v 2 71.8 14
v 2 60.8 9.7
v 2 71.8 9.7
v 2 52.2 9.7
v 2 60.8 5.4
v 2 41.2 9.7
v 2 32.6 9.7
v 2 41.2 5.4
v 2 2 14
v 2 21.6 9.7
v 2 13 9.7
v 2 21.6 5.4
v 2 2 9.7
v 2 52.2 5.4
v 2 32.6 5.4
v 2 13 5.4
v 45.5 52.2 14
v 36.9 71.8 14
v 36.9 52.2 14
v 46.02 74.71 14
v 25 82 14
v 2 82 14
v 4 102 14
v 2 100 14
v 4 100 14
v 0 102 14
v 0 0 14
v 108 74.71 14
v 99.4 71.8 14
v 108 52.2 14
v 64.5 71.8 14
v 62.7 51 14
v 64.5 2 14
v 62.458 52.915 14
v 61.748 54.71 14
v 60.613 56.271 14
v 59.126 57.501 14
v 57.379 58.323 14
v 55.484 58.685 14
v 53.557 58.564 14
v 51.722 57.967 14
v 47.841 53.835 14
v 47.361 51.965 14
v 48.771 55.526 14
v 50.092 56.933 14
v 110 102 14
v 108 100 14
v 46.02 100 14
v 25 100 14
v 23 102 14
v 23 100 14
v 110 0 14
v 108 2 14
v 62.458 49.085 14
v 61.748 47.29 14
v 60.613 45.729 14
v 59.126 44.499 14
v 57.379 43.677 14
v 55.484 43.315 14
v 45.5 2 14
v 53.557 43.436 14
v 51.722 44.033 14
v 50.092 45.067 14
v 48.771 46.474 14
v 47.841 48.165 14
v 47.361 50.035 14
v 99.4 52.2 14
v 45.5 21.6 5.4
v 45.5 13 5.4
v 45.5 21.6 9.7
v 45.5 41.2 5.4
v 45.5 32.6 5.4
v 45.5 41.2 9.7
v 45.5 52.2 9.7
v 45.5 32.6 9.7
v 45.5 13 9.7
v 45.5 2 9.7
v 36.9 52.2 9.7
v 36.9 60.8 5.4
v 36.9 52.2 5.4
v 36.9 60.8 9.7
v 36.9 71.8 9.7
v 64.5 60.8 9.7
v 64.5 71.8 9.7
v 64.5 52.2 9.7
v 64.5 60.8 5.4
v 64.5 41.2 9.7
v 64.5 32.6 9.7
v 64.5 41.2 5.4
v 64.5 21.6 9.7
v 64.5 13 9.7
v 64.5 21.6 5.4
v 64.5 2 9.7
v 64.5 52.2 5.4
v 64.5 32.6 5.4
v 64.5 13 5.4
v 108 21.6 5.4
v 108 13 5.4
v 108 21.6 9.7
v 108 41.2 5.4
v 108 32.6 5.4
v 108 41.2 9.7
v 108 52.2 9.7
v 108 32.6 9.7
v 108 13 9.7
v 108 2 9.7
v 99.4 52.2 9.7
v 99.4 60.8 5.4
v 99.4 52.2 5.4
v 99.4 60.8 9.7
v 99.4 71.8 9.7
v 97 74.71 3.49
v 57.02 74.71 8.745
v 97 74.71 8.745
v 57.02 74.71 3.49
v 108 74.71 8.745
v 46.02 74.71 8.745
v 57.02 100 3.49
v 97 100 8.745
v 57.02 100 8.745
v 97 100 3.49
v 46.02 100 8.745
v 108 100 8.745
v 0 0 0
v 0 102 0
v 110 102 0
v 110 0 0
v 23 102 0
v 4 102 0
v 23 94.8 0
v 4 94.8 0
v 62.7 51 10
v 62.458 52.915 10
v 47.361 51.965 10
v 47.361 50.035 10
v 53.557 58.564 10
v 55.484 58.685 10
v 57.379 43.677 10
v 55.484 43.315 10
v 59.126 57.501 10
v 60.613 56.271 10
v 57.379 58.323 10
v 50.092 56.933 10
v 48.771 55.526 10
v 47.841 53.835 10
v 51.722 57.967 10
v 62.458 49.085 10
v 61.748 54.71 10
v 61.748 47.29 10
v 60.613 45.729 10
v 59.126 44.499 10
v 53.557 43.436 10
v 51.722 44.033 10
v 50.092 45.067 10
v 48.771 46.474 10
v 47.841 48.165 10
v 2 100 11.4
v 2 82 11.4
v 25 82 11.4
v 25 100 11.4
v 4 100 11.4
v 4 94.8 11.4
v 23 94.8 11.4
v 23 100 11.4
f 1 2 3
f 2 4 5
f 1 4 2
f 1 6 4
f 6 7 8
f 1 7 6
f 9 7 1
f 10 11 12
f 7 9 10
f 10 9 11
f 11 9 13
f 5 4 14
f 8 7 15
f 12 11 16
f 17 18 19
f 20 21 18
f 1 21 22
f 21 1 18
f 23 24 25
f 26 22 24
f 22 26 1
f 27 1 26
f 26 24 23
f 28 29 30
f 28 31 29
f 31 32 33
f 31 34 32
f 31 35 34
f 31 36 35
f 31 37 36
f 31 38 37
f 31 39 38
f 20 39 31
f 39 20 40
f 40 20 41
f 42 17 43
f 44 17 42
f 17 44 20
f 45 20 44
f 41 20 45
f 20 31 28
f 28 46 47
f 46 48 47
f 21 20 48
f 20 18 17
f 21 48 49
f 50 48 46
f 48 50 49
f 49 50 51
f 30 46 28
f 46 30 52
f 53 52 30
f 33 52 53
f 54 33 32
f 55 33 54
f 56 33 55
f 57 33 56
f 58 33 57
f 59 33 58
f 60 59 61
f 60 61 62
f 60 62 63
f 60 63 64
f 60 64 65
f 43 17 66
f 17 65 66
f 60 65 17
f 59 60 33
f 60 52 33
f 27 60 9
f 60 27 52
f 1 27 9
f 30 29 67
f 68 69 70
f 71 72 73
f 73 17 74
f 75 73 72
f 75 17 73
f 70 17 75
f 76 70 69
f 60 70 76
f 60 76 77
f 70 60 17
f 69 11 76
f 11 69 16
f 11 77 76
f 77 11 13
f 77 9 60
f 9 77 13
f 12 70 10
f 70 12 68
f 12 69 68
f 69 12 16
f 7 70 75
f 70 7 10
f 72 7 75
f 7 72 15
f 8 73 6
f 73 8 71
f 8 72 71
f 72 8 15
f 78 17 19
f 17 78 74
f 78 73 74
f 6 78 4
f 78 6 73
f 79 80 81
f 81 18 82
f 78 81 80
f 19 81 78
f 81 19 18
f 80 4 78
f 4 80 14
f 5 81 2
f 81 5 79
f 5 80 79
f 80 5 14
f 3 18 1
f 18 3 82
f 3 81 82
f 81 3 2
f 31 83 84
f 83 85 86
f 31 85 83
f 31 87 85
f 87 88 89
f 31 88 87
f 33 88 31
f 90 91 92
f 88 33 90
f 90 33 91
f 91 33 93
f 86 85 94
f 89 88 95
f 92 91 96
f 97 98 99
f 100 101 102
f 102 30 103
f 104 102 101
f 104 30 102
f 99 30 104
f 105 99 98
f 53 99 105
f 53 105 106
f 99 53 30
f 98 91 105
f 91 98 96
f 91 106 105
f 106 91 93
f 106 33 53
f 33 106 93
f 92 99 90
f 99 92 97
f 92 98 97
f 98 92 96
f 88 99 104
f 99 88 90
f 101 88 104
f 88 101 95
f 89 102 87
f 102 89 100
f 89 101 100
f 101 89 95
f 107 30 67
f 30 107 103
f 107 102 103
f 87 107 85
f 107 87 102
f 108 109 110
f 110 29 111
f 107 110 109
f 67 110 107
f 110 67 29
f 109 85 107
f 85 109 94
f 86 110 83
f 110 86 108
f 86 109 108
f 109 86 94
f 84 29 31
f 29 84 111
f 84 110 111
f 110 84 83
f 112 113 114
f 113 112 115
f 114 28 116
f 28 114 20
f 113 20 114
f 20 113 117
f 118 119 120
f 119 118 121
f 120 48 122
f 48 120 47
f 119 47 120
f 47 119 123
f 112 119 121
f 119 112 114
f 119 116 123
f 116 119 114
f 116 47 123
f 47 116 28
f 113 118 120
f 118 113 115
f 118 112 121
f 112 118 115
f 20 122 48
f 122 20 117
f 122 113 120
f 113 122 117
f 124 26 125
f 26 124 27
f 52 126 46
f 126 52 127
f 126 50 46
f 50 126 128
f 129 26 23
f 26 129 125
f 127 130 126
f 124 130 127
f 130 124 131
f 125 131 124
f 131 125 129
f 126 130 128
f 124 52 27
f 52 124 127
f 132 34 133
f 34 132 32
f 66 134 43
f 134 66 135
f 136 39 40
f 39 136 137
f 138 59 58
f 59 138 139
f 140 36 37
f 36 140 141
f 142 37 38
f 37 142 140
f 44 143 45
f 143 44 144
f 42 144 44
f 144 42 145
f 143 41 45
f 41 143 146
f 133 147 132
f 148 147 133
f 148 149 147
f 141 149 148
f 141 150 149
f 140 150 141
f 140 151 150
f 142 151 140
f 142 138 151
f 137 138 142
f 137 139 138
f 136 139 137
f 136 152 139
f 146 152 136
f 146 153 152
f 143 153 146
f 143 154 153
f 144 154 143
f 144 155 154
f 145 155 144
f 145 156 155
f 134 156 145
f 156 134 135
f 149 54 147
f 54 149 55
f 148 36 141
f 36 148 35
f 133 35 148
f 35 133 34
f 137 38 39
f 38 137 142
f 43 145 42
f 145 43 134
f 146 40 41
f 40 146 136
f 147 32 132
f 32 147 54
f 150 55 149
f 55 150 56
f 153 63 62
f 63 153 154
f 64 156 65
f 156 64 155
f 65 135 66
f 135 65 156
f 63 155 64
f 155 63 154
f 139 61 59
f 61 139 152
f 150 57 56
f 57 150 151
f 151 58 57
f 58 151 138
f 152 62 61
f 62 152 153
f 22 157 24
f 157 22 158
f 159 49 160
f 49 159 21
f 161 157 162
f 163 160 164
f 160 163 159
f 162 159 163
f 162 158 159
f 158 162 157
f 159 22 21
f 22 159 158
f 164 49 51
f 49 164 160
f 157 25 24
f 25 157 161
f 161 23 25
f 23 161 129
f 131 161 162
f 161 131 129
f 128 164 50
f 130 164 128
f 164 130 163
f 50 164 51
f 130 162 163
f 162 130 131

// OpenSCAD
length = 110;
width = 102;
height = 14;
magnetPadding = 15;
magnetBaseInnerDiameter = 15.4;
magnetHeight = 4.0;

woodenCubeSide = 8.6;
woodenCubeBoxHeight = woodenCubeSide;
woodenCubeBoxWidth = woodenCubeSide;

//22.5 x 17.5 x 2.1

singleTileWidth = 17.5 + .5;
singleTileLength =  22.5 + .5;
singleTileHeight = 2.1 + .5;

wallThickness = 2;

fingerNotchSize = 11;
woodenCubeCount = 5;
otherWoodenCubeCount = 4;
woodenCubeBoxLength = woodenCubeSide * woodenCubeCount + .5;
otherWoodenCubeBoxLength = woodenCubeSide * otherWoodenCubeCount + .5;


meepleBoxHeight = 10.01 + .5;
meepleBoxWidth = 39.48 + .5;
meepleBoxLength = 24.79 + .5;


//      30 cubes, 7.85-8.1 (use woodenCubeSide) cubed
//		2 cubes, 10 cubed
//		1 player token
//			orange
//				17.25 width, 18.8 tall, 10.0 thick
//			blue
//				19.7 width, 18.7 tall, 9.95 thick
//			purple
//				17.4 width, 19.5 tall, 10.0 tall
//			white
//				17.7 width, 19.05 tall, 9.8 thick
//          boss  24.79 width, 39.48 tall, 10.01 thick
 
//    rotate([0,0,90])
   
        
        

    difference(){
        cube([length, width, height]);  
        translate([wallThickness, wallThickness, 0])
            WoodenCubeBoxes();
        translate([length - (wallThickness + woodenCubeBoxLength), wallThickness, 0])
            WoodenCubeBoxes();
        
        //magnet
        translate([
            length/2,
            width/2,
            height - magnetHeight])
            cylinder(magnetHeight, d=magnetBaseInnerDiameter);
        
        translate([length - wallThickness, width - (wallThickness + meepleBoxLength), 0])
            rotate([0,0,90])
            MeepleBox();
        
        translate([wallThickness,width - (wallThickness + singleTileWidth), height - singleTileHeight])
            cube([singleTileLength, singleTileWidth, singleTileHeight]);
        
        translate([wallThickness + 2,width - (2 * singleTileWidth/5), 0])
            cube([singleTileLength - 4, 2 * singleTileWidth / 5, height]);
//        translate([46 + 2,-10, 0])
//            cube([singleTileLength - 4, singleTileWidth, height]);

    }
    
module WoodenCubeBoxes()
{
    translate([0,0, 0])
    {
        WoodenCubeBox();
    }
    translate([0,fingerNotchSize + woodenCubeSide, 0])
    {
        WoodenCubeBox();
    }
    translate([0,fingerNotchSize * 2 + woodenCubeSide * 2, 0])
    {
        OtherWoodenCubeBox();
    }
}

module WoodenCubeBox()
{
    translate([0, 0, height - (woodenCubeBoxHeight/2)])
        cube([woodenCubeBoxLength, fingerNotchSize, woodenCubeBoxHeight / 2]);
    translate([0, 0 + fingerNotchSize, height - woodenCubeBoxHeight])
        cube([woodenCubeBoxLength, woodenCubeBoxWidth, woodenCubeBoxHeight]);
    translate([0, 0 + fingerNotchSize + woodenCubeBoxWidth, height - (woodenCubeBoxHeight/2)])
        cube([woodenCubeBoxLength, fingerNotchSize, woodenCubeBoxHeight / 2]);
}

module OtherWoodenCubeBox()
{
    translate([0, 0, height - (woodenCubeBoxHeight/2)])
        cube([otherWoodenCubeBoxLength, fingerNotchSize, woodenCubeBoxHeight / 2]);
    translate([0, 0 + fingerNotchSize, height - woodenCubeBoxHeight])
        cube([otherWoodenCubeBoxLength, woodenCubeBoxWidth, woodenCubeBoxHeight]);
    translate([0, 0 + fingerNotchSize + woodenCubeBoxWidth, height - (woodenCubeBoxHeight/2)])
        cube([otherWoodenCubeBoxLength, fingerNotchSize, woodenCubeBoxHeight / 2]);
}

module MeepleBox()
{
    translate([0, 0, height - (meepleBoxHeight/2)])
        cube([meepleBoxLength, fingerNotchSize, meepleBoxHeight / 2]);
    translate([0, 0 + fingerNotchSize, height - meepleBoxHeight])
        cube([meepleBoxLength, meepleBoxWidth, meepleBoxHeight]);
    translate([0, 0 + fingerNotchSize + meepleBoxWidth, height - (meepleBoxHeight/2)])
        cube([meepleBoxLength, fingerNotchSize, meepleBoxHeight / 2]);
}
